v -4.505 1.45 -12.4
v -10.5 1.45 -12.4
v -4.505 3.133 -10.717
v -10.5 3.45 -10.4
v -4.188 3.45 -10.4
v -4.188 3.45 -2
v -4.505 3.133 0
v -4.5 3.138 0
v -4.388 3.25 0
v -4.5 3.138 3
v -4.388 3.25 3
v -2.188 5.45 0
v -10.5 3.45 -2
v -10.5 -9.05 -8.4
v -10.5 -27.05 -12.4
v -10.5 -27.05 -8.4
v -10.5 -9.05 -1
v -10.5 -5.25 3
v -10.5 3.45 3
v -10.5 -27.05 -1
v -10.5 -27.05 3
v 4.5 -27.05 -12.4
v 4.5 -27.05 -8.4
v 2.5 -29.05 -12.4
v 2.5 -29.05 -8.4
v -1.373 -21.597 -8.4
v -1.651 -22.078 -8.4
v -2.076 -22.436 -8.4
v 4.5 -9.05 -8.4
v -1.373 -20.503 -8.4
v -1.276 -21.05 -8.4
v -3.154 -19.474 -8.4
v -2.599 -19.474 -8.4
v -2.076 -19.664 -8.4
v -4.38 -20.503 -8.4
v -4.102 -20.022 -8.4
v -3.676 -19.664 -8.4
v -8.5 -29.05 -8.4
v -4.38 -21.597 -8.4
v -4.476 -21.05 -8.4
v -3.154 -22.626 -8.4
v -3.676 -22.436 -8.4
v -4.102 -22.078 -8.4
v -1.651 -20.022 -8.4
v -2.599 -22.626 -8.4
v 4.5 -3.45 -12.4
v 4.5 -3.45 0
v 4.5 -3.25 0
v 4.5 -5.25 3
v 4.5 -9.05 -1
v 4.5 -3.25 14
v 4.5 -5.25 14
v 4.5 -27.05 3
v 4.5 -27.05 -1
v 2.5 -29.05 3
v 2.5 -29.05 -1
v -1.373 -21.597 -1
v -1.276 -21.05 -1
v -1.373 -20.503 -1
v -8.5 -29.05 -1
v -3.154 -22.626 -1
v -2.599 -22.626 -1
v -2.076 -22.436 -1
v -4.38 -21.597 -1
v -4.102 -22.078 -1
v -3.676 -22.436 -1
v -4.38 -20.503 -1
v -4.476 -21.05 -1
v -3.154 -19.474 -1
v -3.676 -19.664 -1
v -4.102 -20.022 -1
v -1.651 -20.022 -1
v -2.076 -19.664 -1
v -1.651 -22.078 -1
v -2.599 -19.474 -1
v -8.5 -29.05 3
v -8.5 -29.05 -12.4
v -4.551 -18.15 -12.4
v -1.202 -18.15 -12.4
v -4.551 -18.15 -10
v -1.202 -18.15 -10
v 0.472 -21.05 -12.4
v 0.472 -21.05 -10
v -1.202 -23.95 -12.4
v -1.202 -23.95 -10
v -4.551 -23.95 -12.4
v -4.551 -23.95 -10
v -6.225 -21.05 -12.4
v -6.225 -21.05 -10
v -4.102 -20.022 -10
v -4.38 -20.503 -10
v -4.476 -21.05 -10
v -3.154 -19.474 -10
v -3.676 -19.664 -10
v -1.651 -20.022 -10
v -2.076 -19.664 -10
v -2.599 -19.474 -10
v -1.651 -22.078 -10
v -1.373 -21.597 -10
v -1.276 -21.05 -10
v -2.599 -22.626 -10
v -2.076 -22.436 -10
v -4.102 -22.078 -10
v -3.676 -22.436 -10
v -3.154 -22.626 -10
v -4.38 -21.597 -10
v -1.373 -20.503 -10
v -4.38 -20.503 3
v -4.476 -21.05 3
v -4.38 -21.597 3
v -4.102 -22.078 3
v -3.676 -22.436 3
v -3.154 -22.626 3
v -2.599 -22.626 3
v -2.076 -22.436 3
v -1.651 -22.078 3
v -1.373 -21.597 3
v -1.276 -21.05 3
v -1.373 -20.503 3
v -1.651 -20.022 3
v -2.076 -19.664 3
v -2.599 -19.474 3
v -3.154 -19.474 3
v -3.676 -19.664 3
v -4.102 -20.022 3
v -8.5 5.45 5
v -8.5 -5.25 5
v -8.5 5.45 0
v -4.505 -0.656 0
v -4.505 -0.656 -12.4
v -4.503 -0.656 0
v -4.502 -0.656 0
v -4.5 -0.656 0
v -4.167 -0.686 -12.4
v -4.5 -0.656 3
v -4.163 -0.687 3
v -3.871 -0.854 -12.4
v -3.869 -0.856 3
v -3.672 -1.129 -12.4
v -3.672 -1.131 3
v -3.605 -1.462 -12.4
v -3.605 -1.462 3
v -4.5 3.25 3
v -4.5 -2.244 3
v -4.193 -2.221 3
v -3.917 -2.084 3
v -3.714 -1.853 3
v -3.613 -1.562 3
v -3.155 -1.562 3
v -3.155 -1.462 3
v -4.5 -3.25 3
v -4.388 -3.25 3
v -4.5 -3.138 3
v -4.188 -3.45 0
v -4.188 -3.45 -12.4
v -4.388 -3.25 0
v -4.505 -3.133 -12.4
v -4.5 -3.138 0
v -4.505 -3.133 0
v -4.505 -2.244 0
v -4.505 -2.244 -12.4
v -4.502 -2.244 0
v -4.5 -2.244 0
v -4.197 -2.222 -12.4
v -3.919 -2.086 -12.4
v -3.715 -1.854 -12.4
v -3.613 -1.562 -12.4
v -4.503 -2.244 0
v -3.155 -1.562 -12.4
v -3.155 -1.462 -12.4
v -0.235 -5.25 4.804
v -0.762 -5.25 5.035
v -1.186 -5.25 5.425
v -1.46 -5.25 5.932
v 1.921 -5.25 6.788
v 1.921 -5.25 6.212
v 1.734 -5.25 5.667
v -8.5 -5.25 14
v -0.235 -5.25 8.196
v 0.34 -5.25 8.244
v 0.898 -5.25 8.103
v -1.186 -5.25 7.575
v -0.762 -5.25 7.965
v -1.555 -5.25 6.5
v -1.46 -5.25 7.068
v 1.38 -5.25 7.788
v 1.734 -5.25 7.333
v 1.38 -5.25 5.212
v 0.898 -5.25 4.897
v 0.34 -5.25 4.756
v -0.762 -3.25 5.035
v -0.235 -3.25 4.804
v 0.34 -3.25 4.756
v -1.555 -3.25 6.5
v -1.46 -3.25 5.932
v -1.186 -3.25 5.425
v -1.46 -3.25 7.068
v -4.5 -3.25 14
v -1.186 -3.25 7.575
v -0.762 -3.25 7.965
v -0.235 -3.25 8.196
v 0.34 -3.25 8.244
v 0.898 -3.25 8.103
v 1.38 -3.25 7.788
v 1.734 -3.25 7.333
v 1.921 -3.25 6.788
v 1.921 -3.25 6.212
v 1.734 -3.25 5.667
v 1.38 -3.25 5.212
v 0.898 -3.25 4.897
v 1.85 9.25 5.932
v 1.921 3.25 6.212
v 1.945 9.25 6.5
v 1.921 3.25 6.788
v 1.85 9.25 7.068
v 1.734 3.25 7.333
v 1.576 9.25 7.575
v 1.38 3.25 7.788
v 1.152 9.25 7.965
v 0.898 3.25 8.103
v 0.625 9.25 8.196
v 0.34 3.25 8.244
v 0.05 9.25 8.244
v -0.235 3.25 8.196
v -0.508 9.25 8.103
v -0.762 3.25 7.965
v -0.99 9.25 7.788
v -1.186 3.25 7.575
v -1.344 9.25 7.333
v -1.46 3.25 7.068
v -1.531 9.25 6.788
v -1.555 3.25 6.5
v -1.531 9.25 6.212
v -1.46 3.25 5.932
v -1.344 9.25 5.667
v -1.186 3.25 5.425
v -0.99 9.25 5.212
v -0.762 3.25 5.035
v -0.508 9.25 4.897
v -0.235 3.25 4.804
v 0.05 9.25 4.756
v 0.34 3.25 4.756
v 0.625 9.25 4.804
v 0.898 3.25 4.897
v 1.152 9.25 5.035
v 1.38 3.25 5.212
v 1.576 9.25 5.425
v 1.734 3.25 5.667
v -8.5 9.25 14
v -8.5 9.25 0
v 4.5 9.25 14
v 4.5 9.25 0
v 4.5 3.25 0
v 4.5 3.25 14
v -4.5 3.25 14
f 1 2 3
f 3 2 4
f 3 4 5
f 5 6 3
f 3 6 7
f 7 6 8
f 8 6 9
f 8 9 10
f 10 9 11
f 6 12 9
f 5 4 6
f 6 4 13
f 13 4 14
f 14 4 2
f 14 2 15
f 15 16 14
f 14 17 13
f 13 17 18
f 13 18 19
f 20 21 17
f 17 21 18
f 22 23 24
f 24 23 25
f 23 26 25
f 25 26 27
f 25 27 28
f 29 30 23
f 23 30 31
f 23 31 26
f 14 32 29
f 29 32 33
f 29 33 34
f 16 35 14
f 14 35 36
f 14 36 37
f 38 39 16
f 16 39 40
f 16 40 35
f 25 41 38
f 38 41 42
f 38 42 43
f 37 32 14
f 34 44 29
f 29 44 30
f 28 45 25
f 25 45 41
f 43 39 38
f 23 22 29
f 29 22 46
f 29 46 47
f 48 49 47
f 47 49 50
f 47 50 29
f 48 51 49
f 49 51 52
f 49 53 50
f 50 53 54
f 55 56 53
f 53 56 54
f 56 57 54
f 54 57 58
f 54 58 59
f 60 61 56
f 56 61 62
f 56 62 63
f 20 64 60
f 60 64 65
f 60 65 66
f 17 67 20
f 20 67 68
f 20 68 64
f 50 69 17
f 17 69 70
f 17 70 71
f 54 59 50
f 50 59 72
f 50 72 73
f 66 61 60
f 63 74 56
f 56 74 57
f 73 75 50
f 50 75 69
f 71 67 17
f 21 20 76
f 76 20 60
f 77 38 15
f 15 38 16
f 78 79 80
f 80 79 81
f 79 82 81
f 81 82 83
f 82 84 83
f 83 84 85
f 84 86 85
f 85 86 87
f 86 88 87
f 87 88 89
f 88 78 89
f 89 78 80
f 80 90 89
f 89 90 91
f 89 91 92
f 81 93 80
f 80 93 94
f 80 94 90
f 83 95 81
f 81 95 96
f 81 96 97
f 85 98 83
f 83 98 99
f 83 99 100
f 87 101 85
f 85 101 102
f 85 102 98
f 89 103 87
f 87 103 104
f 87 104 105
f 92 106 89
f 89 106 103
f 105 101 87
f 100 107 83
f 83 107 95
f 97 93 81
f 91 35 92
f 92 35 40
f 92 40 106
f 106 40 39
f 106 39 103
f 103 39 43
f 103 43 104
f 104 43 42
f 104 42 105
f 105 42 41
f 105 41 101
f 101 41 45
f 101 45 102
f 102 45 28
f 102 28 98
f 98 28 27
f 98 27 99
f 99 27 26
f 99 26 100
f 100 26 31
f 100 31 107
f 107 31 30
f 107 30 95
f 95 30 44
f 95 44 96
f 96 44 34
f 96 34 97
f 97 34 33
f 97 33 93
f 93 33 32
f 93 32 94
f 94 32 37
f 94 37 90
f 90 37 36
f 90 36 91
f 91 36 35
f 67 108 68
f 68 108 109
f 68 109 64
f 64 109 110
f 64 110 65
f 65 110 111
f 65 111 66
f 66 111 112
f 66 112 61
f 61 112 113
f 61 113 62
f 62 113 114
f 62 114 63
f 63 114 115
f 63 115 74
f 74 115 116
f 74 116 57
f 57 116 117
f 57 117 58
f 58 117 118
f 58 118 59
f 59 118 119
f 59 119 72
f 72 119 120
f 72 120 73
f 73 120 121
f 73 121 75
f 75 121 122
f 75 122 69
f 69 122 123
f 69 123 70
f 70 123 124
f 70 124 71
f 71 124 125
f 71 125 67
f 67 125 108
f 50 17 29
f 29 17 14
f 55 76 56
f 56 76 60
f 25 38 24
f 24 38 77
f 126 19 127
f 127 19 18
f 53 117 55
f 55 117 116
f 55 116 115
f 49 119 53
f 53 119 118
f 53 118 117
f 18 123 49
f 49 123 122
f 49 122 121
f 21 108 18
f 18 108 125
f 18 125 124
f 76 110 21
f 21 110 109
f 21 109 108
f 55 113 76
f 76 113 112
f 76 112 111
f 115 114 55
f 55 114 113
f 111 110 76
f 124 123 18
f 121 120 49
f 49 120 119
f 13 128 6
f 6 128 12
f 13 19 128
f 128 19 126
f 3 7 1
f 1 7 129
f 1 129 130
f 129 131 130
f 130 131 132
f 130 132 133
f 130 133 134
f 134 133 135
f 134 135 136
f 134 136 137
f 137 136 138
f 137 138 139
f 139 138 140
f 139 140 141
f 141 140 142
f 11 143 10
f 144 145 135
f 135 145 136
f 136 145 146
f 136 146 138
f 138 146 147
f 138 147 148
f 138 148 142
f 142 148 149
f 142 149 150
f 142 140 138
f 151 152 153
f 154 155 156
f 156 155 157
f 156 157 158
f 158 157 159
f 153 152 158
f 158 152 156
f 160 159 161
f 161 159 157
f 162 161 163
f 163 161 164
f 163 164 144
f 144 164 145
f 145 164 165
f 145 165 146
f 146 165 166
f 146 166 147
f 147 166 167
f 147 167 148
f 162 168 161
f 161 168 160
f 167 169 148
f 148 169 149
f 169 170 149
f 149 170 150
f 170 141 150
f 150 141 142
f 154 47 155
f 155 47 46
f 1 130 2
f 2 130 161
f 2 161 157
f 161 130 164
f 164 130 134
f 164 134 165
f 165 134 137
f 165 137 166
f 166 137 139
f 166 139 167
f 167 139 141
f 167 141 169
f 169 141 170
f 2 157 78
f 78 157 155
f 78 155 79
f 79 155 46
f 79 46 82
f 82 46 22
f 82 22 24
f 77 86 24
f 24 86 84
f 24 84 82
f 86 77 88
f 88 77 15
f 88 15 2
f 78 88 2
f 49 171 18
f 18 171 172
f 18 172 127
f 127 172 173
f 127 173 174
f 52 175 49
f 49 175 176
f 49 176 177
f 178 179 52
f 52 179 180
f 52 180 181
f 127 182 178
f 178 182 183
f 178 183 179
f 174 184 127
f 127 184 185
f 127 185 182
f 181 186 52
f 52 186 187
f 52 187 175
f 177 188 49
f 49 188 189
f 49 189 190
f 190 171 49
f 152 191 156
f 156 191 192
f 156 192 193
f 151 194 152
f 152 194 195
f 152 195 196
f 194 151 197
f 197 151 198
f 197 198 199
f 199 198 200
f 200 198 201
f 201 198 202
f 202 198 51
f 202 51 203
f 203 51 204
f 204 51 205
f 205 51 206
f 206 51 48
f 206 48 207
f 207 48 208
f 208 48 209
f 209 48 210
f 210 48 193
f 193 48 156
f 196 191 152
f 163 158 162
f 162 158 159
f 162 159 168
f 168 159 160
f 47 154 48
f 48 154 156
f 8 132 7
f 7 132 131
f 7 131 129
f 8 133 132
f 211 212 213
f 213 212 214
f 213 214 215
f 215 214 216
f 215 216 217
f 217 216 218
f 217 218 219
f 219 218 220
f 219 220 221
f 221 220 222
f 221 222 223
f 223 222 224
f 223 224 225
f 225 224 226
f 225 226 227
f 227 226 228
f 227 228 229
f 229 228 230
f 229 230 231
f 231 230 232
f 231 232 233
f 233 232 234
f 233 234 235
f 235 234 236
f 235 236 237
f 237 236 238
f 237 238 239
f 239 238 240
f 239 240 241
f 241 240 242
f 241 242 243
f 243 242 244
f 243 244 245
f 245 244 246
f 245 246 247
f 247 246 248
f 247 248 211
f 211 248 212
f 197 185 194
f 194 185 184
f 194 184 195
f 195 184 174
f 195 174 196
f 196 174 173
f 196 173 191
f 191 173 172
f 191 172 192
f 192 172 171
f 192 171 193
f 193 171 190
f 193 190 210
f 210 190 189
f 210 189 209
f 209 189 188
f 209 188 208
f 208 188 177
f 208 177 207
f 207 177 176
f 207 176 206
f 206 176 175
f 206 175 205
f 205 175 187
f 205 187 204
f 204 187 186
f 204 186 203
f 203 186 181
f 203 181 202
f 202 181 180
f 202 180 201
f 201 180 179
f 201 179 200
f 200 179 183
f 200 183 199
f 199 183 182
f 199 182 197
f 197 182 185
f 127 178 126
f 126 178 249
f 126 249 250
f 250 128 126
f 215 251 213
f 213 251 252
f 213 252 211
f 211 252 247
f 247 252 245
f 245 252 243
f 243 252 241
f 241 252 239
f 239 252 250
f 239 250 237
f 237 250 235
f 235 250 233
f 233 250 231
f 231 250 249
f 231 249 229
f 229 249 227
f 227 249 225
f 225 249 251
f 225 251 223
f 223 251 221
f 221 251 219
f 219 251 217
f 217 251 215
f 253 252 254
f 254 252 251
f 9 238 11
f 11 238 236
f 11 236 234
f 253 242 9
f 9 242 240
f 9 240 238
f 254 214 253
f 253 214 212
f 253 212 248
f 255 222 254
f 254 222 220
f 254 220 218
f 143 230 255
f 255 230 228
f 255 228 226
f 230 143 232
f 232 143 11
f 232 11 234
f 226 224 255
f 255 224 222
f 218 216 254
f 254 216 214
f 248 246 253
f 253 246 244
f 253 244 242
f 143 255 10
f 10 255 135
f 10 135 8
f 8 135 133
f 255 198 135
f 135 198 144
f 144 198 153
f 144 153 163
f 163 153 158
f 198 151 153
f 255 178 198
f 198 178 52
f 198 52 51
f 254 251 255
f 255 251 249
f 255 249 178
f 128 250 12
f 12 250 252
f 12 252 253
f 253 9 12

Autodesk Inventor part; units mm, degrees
ref_plane "YZ Plane" through (0, 0, 0) normal (1, 0, 0) x (0, 1, 0)
ref_plane "XZ Plane" through (0, 0, 0) normal (0, 1, 0) x (-1, 0, 0)
ref_plane "XY Plane" through (0, 0, 0) normal (0, 0, 1) x (1, 0, 0)
sketch "Эскиз2" plane through (0, 0, 0) normal (0, 0, 1) x (1, 0, 0)
  line L0 (-4.5, 3.25) -> (4.5, 3.25)
  line L1 (4.5, 3.25) -> (4.5, -3.25)
  line L2 (4.5, -3.25) -> (-4.5, -3.25)
  line L3 (-4.5, -3.25) -> (-4.5, 3.25)
  line L4 (-4.5, 3.25) -> (4.5, -3.25) construction
  line L5 (4.5, 3.25) -> (-4.5, -3.25) construction
  line L6 (8.5, 9.25) -> (4.5, 9.25) construction
  line L7 (-8.5, 9.25) -> (-8.5, -5.25)
  line L8 (-8.5, -5.25) -> (4.5, -5.25)
  line L9 (8.5, -5.25) -> (8.5, 9.25) construction
  line L10 (4.5, 3.25) -> (4.5, 9.25)
  line L11 (4.5, -3.25) -> (4.5, -5.25)
  line L12 (4.5, 9.25) -> (-8.5, 9.25)
  line L13 (4.5, -5.25) -> (8.5, -5.25) construction
  point P0 (0, 0)
  dimension "d0" = 9
  dimension "d1" = 6.5
  dimension "d2" = 6
extrude "Выдавливание1" add sketch "Эскиз2" along normal blind 14 contours L3 L2 L11 L8 L7 L12 L10 L0
sketch "Эскиз3" plane through (-8.5, 9.25, 0) normal (0, 1, 0) x (1, 0, 0)
  line L0 (13, 0) -> (0, 0) construction
  circle A0 centre (8.695, -6.5) radius 1.75
  line L1 (13, 0) -> (13, -14) projected
  point P0 (8.5, 0)
  dimension "d5" = 3.5
  dimension "d9" = 4.305
extrude "Выдавливание2" cut sketch "Эскиз3" against normal blind 20
sketch "Эскиз4" plane through (0, 0, 0) normal (0, 0, -1) x (-1, 0, 0)
  line L0 (2.9551, -1.2625) -> (2.9551, -1.7625) construction
  line L1 (2.9551, -1.7625) -> (3.4551, -1.7625) construction
  arc A0 (3.4551, -1.7625) -> (4.305, -2.445) centre (4.405, -1.45) ccw construction
  line L2 (4.305, -2.445) -> (4.305, -3.05) construction
  line L3 (4.305, -3.05) -> (4.105, -3.25) construction
  line L4 (4.105, -3.25) -> (-4.495, -3.25) construction
  line L5 (-4.495, -3.25) -> (-4.695, -3.05) construction
  line L6 (-4.695, -3.05) -> (-4.695, -2.445) construction
  arc A1 (-4.695, -2.445) -> (-3.8451, -1.7625) centre (-4.795, -1.45) ccw construction
  line L7 (-3.8451, -1.7625) -> (-3.3451, -1.7625) construction
  line L8 (-3.3451, -1.7625) -> (-3.3451, -1.2625) construction
  line L9 (-3.3451, -1.2625) -> (-3.8127, -1.2625) construction
  arc A2 (-3.8127, -1.2625) -> (-4.695, -0.455) centre (-4.795, -1.45) ccw construction
  line L10 (-4.695, -0.455) -> (-4.695, 3.05) construction
  line L11 (-4.695, 3.05) -> (-4.495, 3.25) construction
  line L12 (-4.495, 3.25) -> (4.105, 3.25) construction
  line L13 (4.105, 3.25) -> (4.305, 3.05) construction
  line L14 (4.305, 3.05) -> (4.305, -0.455) construction
  arc A3 (4.305, -0.455) -> (3.4227, -1.2625) centre (4.405, -1.45) ccw construction
  line L15 (3.4227, -1.2625) -> (2.9551, -1.2625) construction
  line L16 (4.1878, 3.45) -> (-4.5778, 3.45) construction
  line L17 (-4.5778, 3.45) -> (-4.895, 3.1328) construction
  line L18 (-4.895, 3.1328) -> (-4.895, -0.6563) construction
  arc A4 (-3.9951, -1.4625) -> (-4.895, -0.6563) centre (-4.795, -1.45) ccw construction
  line L19 (-3.9951, -1.4625) -> (-3.5451, -1.4625) construction
  line L20 (-3.5451, -1.4625) -> (-3.5451, -1.5625) construction
  line L21 (-3.5451, -1.5625) -> (-4.0029, -1.5625) construction
  arc A5 (-4.895, -2.2437) -> (-4.0029, -1.5625) centre (-4.795, -1.45) ccw construction
  line L22 (-4.895, -2.2437) -> (-4.895, -3.1328) construction
  line L23 (-4.895, -3.1328) -> (-4.5778, -3.45) construction
  line L24 (-4.5, -3.45) -> (4.1878, -3.45)
  line L25 (4.1878, -3.45) -> (4.505, -3.1328)
  line L26 (4.505, -3.1328) -> (4.505, -2.2437)
  arc A6 (3.6129, -1.5625) -> (4.505, -2.2437) centre (4.405, -1.45) ccw
  line L27 (3.6129, -1.5625) -> (3.1551, -1.5625)
  line L28 (3.1551, -1.5625) -> (3.1551, -1.4625)
  line L29 (3.1551, -1.4625) -> (3.6051, -1.4625)
  arc A7 (4.505, -0.6563) -> (3.6051, -1.4625) centre (4.405, -1.45) ccw
  line L30 (4.505, -0.6563) -> (4.505, 3.1328)
  line L31 (4.505, 3.1328) -> (4.1878, 3.45)
  line L32 (4.1878, 3.45) -> (8.5, 3.45)
  line L33 (8.5, 9.25) -> (8.5, -5.25) projected
  line L34 (-4.5, -5.25) -> (-4.5, -3.25) projected
  line L35 (-4.5, -3.45) -> (-4.5, -29.05)
  line L36 (-4.5, -29.05) -> (10.5, -29.05)
  line L37 (10.5, -29.05) -> (10.5, 3.45)
  line L38 (10.5, 3.45) -> (8.5, 3.45)
  point P0 (0, 0)
  dimension "d10" = 0.2
  dimension "d12" = 4.3122
  dimension "d13" = 15
extrude "Выдавливание3" add sketch "Эскиз4" along normal blind 12.4 and the other way blind 3
chamfer "Фаска1" distance 2 angle 45 1 edges at (-8.5, 3.45, 1.5)
chamfer "Фаска2" distance 2 angle 45 1 edges at (-6.3439, 3.45, 0)
chamfer "Фаска3" distance 2 angle 45 1 edges at (-8.5, -0.9, 3)
ref_plane "РабПлоскость1" through (0, 0, -4.7) normal (0, 0, -1) x (-1, 0, 0)
sketch "Эскиз5" plane through (0, 0, -4.7) normal (0, 0, -1) x (-1, 0, 0)
  circle A0 centre (2.8764, -21.05) radius 11 construction
  line L0 (-4.5, -29.05) -> (10.5, -29.05) construction
  circle A1 centre (2.8764, -21.05) radius 1.6
  line L1 (10.5, -29.05) -> (10.5, 3.45) projected
  line L2 (10.5, -29.05) -> (10.5, -9.05)
  line L3 (10.5, -9.05) -> (-4.5, -9.05)
  line L4 (-4.5, -3.45) -> (-4.5, -29.05) projected
  line L5 (-4.5, -9.05) -> (-4.5, -29.05)
  line L6 (-4.5, -29.05) -> (10.5, -29.05)
  point P0 (0, 0)
  dimension "d27" = 22
  dimension "d28" = 8
  dimension "d29" = 3.2
  dimension "d30" = 12
extrude "Выдавливание4" cut sketch "Эскиз5" along normal mid plane 7.4
extrude "Выдавливание5" cut sketch "Эскиз5" along normal mid plane 20 contours A1
sketch "Эскиз6" plane through (0, 0, -12.4) normal (0, 0, -1) x (-1, 0, 0)
  circle A0 centre (2.8764, -21.05) radius 1.6 construction
  circle A1 centre (2.8764, -21.05) radius 1.6 projected
  line L0 (4.5507, -23.95) -> (1.2021, -23.95)
  line L1 (1.2021, -23.95) -> (-0.4722, -21.05)
  line L2 (-0.4722, -21.05) -> (1.2021, -18.15)
  line L3 (1.2021, -18.15) -> (4.5507, -18.15)
  line L4 (4.5507, -18.15) -> (6.2251, -21.05)
  line L5 (6.2251, -21.05) -> (4.5507, -23.95)
  line L6 (-4.5, -29.05) -> (10.5, -29.05) projected
  point P0 (0, 0)
  dimension "d35" = 5.8
extrude "Выдавливание6" cut sketch "Эскиз6" against normal blind 2.4
chamfer "Фаска4" distance 2 angle 45 5 edges at (-10.5, -29.05, -10.4) (-10.5, -29.05, 1) (4.5, -29.05, 1) (4.5, -29.05, -10.4) (-7.3439, 3.45, -12.4)
properties part number "ограничитель" material "Полипропилен"
